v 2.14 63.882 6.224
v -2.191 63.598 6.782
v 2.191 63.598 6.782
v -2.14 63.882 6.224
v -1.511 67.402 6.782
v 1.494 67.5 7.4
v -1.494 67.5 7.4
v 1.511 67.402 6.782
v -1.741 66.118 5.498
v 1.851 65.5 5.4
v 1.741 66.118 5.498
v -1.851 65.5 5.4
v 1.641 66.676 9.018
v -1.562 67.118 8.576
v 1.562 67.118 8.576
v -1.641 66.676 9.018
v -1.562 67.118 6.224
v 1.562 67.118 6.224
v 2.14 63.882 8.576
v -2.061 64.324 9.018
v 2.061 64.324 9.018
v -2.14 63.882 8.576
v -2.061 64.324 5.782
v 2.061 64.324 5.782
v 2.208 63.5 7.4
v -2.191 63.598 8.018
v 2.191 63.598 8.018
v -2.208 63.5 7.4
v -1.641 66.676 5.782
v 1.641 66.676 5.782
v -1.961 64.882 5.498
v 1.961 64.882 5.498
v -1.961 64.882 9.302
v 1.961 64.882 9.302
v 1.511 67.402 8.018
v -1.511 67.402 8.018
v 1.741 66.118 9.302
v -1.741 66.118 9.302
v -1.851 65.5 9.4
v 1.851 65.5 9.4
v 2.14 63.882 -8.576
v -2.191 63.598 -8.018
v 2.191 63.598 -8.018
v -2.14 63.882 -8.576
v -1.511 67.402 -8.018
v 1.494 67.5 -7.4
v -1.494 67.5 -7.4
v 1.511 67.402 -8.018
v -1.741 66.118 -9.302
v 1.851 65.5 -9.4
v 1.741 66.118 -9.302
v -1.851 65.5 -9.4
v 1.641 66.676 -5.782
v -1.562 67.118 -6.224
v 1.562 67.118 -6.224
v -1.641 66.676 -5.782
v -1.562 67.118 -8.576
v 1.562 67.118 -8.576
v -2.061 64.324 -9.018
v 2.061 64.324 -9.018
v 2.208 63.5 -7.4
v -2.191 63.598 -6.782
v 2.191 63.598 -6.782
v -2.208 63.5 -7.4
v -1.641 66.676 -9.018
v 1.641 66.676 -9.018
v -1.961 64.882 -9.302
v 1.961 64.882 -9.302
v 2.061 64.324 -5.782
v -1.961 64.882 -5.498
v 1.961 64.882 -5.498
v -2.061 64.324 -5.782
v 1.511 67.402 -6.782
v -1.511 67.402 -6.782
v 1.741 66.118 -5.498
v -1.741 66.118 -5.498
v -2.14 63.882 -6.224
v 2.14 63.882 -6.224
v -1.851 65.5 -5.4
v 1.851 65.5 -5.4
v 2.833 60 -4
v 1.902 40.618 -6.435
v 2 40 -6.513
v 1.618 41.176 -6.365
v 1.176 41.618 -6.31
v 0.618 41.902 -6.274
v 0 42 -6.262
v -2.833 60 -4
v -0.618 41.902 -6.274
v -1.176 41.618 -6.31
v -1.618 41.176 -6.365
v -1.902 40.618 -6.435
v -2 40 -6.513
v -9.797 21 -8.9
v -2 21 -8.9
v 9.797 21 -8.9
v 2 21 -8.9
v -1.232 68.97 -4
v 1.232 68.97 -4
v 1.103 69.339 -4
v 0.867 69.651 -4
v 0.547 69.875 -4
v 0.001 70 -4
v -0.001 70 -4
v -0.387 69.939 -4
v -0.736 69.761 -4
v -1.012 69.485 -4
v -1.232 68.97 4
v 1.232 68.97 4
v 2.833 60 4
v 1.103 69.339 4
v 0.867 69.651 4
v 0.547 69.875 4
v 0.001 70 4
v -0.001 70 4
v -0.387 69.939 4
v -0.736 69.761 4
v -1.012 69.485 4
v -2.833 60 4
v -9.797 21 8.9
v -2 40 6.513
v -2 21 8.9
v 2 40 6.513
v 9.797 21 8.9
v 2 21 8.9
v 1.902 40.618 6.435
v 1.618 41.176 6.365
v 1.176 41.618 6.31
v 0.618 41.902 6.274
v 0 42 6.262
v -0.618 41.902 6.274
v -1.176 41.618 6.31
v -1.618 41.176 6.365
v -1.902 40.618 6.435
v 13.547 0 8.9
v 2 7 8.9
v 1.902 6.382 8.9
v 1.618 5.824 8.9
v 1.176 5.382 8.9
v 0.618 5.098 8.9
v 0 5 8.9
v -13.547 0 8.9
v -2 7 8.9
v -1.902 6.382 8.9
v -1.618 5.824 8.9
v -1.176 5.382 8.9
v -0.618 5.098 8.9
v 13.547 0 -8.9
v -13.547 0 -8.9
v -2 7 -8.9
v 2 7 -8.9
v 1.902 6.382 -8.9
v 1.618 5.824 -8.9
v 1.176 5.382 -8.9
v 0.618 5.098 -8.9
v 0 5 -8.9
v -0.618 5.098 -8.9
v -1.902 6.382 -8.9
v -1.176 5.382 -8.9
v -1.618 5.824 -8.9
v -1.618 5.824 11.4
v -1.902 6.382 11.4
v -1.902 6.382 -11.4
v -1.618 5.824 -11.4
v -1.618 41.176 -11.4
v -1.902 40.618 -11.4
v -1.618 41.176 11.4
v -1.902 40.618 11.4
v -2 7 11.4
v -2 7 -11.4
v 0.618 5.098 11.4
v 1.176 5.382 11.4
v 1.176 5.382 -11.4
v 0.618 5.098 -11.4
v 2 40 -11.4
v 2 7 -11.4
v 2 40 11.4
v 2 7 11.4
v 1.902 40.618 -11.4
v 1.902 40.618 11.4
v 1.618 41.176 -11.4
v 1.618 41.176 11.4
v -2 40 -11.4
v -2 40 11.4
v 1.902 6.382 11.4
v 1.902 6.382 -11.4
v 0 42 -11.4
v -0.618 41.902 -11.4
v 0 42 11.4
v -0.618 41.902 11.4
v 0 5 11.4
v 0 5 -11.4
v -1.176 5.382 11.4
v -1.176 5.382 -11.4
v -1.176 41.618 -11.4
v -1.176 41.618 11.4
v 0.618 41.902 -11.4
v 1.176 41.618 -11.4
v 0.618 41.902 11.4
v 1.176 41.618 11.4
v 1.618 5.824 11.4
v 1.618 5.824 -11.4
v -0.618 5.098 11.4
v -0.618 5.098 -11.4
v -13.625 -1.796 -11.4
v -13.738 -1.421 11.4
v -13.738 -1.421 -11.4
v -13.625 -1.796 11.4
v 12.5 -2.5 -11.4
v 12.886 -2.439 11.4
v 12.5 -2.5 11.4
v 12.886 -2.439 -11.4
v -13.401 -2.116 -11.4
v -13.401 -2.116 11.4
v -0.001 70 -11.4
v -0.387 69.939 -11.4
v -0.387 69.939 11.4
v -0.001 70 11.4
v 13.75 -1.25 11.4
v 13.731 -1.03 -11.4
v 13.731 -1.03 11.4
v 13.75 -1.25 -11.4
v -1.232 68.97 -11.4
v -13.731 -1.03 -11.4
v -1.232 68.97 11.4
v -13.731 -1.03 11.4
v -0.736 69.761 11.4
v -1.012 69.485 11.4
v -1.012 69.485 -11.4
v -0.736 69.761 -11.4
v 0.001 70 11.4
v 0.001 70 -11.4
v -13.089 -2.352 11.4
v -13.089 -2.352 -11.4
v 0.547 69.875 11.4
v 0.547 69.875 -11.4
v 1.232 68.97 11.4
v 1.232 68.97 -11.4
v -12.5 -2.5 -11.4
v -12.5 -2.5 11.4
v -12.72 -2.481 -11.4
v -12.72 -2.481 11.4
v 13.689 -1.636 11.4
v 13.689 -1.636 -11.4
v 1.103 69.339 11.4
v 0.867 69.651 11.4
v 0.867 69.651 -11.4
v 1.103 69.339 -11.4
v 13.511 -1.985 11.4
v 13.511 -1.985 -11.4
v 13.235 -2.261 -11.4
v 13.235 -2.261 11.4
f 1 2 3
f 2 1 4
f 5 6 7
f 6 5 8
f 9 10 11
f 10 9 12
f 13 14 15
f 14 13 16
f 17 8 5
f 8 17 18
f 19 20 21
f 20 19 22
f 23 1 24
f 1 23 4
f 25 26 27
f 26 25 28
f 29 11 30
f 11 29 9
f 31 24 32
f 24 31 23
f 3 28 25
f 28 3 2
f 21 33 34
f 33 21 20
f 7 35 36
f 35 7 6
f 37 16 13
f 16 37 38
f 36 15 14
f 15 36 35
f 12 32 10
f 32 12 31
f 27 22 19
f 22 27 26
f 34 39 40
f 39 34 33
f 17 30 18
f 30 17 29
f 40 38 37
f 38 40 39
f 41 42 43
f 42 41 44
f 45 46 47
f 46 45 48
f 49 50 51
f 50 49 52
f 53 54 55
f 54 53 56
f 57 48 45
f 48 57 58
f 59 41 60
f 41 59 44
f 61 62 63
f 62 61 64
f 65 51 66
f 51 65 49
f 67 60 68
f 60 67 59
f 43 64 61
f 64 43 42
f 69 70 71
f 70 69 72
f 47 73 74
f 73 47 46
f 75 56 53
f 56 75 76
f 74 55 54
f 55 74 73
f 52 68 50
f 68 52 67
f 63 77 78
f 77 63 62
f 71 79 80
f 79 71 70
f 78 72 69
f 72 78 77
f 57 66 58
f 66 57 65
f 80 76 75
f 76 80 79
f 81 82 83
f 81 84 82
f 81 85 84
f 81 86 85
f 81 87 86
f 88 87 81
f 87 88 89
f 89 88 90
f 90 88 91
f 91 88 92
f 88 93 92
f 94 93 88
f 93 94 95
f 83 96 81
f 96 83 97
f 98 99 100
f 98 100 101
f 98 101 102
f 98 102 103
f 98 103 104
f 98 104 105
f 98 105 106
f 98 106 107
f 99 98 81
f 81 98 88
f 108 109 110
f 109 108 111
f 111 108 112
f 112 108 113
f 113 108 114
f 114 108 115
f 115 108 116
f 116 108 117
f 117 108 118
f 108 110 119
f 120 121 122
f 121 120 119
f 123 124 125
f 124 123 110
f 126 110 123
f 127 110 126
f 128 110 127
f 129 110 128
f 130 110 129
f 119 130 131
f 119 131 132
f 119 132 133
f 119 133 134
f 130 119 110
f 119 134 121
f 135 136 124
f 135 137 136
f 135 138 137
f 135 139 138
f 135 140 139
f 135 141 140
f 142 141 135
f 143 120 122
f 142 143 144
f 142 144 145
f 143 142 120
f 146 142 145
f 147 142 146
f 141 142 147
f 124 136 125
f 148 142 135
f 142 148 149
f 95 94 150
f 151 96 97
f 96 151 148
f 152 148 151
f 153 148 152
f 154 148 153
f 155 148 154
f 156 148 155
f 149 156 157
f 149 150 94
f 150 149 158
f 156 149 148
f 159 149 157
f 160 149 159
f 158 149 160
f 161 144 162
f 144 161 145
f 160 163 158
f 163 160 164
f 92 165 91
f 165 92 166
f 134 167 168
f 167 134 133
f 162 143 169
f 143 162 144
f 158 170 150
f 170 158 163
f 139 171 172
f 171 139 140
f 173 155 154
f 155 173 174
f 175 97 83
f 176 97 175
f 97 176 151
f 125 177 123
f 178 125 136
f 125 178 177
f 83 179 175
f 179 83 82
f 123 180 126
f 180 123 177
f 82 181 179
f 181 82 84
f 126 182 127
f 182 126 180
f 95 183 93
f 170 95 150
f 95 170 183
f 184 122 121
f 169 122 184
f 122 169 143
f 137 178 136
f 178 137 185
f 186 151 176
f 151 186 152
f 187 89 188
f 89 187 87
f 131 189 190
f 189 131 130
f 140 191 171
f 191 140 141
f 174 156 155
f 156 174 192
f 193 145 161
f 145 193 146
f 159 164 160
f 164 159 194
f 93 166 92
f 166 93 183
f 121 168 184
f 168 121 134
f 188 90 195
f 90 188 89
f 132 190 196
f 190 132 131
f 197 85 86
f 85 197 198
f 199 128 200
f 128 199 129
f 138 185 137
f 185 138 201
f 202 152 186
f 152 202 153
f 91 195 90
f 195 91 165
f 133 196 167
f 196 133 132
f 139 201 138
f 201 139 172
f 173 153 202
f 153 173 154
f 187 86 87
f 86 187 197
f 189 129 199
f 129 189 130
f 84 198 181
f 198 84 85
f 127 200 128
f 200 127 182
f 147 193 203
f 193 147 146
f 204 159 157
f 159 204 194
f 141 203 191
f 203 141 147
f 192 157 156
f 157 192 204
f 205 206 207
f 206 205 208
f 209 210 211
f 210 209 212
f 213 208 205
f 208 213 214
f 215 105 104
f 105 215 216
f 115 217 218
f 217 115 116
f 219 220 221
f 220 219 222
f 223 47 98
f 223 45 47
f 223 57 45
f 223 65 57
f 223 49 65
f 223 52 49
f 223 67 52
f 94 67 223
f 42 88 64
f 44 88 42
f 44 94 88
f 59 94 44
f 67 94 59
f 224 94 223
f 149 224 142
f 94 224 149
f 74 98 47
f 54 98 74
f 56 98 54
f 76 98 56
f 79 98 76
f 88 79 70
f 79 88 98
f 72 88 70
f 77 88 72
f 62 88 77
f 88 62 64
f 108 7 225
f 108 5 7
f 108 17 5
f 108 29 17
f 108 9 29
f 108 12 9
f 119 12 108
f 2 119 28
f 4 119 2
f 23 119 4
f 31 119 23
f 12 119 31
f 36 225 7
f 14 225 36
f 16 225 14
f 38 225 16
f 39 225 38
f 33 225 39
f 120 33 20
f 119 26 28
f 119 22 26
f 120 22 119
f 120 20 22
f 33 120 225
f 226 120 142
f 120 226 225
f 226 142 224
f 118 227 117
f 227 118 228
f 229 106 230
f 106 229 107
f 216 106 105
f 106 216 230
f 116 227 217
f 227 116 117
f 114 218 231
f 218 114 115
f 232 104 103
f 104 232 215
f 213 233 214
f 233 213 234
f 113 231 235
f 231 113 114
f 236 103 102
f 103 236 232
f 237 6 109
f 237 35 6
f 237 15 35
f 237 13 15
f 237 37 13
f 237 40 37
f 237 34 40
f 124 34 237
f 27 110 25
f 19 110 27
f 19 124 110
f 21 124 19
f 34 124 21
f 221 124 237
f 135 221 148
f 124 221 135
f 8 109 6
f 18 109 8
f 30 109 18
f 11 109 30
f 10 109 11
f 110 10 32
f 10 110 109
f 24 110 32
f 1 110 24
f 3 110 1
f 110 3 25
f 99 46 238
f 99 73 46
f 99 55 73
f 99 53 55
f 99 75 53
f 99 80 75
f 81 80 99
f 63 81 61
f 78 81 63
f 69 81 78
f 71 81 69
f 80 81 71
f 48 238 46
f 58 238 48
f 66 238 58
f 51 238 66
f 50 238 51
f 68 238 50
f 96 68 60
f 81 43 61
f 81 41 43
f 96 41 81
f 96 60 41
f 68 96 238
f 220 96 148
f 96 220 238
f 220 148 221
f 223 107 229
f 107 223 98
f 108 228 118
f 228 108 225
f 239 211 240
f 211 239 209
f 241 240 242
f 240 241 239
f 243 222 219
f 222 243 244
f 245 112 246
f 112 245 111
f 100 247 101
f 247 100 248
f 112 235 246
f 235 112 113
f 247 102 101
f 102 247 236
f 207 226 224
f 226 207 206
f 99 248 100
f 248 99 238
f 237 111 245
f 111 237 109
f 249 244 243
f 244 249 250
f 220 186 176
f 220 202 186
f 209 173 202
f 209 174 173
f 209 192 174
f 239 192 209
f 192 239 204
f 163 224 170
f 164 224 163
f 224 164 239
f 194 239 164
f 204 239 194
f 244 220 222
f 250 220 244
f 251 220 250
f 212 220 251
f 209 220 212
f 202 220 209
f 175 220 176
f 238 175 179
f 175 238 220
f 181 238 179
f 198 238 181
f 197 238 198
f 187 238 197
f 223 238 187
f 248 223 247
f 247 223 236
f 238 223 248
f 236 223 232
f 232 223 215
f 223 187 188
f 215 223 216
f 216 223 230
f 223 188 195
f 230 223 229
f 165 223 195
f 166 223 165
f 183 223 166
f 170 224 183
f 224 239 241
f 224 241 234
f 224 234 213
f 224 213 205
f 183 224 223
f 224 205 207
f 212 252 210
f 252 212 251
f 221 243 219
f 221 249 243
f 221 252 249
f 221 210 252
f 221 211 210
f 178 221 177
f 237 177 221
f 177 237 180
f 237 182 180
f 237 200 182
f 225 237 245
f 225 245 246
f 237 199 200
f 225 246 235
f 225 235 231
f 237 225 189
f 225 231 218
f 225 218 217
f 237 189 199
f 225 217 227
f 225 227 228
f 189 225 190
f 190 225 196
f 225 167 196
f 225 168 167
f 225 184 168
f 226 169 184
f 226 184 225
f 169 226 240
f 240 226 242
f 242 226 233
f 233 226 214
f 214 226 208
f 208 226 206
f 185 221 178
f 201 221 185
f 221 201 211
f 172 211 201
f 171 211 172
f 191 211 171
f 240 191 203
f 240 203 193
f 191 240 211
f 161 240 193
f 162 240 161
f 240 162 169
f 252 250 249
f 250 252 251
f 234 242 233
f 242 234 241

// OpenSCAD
e=.001;
$fn=20;

w=17.8;
h=21;
d=25;
th=2.5;

eye_h=10;
total_h=70;

xt60w=8;

wire_w=4;

module basic_shape()
{
translate([0,0,-th-w/2])
linear_extrude(w+th*2)
offset(th/2)polygon(
	[
		[-d/2, -th/2],
			/*[-e, total_h-eye_h],*/ [-e, total_h-th/2],
			[e, total_h-th/2], /* [e, total_h-eye_h],*/
		[d/2,-th/2]
	]);
}


module cut_out()
{
rotate([0,90,0])
translate([0,0,(-d-th)/2])
linear_extrude(d+th)
polygon(
	[
		[-w/2, 0], [-w/2, h],
			[-xt60w/2, total_h-eye_h], [-xt60w/2, total_h+e],
			[xt60w/2, total_h+e], [xt60w/2, total_h-eye_h],
		[w/2, h], [w/2,0]
	]);
}


module holes()
{
for (i=[1,-1])
translate([0, total_h-th-wire_w/2, i*(w/2+th-xt60w/2)])
rotate([0,90,0])
cylinder(w+th*2+2*e,r=wire_w/2,center=true);
}

module wire_cut_out()
{
translate([0,0,-w/2-th-e])
linear_extrude(w+th*2+e*2)
hull()
{
	for (i=[7,40])
	translate([0,i])
	circle(r=wire_w/2);
}

}

difference(){
basic_shape();
union()
{
cut_out();
wire_cut_out();
holes();
}

}
